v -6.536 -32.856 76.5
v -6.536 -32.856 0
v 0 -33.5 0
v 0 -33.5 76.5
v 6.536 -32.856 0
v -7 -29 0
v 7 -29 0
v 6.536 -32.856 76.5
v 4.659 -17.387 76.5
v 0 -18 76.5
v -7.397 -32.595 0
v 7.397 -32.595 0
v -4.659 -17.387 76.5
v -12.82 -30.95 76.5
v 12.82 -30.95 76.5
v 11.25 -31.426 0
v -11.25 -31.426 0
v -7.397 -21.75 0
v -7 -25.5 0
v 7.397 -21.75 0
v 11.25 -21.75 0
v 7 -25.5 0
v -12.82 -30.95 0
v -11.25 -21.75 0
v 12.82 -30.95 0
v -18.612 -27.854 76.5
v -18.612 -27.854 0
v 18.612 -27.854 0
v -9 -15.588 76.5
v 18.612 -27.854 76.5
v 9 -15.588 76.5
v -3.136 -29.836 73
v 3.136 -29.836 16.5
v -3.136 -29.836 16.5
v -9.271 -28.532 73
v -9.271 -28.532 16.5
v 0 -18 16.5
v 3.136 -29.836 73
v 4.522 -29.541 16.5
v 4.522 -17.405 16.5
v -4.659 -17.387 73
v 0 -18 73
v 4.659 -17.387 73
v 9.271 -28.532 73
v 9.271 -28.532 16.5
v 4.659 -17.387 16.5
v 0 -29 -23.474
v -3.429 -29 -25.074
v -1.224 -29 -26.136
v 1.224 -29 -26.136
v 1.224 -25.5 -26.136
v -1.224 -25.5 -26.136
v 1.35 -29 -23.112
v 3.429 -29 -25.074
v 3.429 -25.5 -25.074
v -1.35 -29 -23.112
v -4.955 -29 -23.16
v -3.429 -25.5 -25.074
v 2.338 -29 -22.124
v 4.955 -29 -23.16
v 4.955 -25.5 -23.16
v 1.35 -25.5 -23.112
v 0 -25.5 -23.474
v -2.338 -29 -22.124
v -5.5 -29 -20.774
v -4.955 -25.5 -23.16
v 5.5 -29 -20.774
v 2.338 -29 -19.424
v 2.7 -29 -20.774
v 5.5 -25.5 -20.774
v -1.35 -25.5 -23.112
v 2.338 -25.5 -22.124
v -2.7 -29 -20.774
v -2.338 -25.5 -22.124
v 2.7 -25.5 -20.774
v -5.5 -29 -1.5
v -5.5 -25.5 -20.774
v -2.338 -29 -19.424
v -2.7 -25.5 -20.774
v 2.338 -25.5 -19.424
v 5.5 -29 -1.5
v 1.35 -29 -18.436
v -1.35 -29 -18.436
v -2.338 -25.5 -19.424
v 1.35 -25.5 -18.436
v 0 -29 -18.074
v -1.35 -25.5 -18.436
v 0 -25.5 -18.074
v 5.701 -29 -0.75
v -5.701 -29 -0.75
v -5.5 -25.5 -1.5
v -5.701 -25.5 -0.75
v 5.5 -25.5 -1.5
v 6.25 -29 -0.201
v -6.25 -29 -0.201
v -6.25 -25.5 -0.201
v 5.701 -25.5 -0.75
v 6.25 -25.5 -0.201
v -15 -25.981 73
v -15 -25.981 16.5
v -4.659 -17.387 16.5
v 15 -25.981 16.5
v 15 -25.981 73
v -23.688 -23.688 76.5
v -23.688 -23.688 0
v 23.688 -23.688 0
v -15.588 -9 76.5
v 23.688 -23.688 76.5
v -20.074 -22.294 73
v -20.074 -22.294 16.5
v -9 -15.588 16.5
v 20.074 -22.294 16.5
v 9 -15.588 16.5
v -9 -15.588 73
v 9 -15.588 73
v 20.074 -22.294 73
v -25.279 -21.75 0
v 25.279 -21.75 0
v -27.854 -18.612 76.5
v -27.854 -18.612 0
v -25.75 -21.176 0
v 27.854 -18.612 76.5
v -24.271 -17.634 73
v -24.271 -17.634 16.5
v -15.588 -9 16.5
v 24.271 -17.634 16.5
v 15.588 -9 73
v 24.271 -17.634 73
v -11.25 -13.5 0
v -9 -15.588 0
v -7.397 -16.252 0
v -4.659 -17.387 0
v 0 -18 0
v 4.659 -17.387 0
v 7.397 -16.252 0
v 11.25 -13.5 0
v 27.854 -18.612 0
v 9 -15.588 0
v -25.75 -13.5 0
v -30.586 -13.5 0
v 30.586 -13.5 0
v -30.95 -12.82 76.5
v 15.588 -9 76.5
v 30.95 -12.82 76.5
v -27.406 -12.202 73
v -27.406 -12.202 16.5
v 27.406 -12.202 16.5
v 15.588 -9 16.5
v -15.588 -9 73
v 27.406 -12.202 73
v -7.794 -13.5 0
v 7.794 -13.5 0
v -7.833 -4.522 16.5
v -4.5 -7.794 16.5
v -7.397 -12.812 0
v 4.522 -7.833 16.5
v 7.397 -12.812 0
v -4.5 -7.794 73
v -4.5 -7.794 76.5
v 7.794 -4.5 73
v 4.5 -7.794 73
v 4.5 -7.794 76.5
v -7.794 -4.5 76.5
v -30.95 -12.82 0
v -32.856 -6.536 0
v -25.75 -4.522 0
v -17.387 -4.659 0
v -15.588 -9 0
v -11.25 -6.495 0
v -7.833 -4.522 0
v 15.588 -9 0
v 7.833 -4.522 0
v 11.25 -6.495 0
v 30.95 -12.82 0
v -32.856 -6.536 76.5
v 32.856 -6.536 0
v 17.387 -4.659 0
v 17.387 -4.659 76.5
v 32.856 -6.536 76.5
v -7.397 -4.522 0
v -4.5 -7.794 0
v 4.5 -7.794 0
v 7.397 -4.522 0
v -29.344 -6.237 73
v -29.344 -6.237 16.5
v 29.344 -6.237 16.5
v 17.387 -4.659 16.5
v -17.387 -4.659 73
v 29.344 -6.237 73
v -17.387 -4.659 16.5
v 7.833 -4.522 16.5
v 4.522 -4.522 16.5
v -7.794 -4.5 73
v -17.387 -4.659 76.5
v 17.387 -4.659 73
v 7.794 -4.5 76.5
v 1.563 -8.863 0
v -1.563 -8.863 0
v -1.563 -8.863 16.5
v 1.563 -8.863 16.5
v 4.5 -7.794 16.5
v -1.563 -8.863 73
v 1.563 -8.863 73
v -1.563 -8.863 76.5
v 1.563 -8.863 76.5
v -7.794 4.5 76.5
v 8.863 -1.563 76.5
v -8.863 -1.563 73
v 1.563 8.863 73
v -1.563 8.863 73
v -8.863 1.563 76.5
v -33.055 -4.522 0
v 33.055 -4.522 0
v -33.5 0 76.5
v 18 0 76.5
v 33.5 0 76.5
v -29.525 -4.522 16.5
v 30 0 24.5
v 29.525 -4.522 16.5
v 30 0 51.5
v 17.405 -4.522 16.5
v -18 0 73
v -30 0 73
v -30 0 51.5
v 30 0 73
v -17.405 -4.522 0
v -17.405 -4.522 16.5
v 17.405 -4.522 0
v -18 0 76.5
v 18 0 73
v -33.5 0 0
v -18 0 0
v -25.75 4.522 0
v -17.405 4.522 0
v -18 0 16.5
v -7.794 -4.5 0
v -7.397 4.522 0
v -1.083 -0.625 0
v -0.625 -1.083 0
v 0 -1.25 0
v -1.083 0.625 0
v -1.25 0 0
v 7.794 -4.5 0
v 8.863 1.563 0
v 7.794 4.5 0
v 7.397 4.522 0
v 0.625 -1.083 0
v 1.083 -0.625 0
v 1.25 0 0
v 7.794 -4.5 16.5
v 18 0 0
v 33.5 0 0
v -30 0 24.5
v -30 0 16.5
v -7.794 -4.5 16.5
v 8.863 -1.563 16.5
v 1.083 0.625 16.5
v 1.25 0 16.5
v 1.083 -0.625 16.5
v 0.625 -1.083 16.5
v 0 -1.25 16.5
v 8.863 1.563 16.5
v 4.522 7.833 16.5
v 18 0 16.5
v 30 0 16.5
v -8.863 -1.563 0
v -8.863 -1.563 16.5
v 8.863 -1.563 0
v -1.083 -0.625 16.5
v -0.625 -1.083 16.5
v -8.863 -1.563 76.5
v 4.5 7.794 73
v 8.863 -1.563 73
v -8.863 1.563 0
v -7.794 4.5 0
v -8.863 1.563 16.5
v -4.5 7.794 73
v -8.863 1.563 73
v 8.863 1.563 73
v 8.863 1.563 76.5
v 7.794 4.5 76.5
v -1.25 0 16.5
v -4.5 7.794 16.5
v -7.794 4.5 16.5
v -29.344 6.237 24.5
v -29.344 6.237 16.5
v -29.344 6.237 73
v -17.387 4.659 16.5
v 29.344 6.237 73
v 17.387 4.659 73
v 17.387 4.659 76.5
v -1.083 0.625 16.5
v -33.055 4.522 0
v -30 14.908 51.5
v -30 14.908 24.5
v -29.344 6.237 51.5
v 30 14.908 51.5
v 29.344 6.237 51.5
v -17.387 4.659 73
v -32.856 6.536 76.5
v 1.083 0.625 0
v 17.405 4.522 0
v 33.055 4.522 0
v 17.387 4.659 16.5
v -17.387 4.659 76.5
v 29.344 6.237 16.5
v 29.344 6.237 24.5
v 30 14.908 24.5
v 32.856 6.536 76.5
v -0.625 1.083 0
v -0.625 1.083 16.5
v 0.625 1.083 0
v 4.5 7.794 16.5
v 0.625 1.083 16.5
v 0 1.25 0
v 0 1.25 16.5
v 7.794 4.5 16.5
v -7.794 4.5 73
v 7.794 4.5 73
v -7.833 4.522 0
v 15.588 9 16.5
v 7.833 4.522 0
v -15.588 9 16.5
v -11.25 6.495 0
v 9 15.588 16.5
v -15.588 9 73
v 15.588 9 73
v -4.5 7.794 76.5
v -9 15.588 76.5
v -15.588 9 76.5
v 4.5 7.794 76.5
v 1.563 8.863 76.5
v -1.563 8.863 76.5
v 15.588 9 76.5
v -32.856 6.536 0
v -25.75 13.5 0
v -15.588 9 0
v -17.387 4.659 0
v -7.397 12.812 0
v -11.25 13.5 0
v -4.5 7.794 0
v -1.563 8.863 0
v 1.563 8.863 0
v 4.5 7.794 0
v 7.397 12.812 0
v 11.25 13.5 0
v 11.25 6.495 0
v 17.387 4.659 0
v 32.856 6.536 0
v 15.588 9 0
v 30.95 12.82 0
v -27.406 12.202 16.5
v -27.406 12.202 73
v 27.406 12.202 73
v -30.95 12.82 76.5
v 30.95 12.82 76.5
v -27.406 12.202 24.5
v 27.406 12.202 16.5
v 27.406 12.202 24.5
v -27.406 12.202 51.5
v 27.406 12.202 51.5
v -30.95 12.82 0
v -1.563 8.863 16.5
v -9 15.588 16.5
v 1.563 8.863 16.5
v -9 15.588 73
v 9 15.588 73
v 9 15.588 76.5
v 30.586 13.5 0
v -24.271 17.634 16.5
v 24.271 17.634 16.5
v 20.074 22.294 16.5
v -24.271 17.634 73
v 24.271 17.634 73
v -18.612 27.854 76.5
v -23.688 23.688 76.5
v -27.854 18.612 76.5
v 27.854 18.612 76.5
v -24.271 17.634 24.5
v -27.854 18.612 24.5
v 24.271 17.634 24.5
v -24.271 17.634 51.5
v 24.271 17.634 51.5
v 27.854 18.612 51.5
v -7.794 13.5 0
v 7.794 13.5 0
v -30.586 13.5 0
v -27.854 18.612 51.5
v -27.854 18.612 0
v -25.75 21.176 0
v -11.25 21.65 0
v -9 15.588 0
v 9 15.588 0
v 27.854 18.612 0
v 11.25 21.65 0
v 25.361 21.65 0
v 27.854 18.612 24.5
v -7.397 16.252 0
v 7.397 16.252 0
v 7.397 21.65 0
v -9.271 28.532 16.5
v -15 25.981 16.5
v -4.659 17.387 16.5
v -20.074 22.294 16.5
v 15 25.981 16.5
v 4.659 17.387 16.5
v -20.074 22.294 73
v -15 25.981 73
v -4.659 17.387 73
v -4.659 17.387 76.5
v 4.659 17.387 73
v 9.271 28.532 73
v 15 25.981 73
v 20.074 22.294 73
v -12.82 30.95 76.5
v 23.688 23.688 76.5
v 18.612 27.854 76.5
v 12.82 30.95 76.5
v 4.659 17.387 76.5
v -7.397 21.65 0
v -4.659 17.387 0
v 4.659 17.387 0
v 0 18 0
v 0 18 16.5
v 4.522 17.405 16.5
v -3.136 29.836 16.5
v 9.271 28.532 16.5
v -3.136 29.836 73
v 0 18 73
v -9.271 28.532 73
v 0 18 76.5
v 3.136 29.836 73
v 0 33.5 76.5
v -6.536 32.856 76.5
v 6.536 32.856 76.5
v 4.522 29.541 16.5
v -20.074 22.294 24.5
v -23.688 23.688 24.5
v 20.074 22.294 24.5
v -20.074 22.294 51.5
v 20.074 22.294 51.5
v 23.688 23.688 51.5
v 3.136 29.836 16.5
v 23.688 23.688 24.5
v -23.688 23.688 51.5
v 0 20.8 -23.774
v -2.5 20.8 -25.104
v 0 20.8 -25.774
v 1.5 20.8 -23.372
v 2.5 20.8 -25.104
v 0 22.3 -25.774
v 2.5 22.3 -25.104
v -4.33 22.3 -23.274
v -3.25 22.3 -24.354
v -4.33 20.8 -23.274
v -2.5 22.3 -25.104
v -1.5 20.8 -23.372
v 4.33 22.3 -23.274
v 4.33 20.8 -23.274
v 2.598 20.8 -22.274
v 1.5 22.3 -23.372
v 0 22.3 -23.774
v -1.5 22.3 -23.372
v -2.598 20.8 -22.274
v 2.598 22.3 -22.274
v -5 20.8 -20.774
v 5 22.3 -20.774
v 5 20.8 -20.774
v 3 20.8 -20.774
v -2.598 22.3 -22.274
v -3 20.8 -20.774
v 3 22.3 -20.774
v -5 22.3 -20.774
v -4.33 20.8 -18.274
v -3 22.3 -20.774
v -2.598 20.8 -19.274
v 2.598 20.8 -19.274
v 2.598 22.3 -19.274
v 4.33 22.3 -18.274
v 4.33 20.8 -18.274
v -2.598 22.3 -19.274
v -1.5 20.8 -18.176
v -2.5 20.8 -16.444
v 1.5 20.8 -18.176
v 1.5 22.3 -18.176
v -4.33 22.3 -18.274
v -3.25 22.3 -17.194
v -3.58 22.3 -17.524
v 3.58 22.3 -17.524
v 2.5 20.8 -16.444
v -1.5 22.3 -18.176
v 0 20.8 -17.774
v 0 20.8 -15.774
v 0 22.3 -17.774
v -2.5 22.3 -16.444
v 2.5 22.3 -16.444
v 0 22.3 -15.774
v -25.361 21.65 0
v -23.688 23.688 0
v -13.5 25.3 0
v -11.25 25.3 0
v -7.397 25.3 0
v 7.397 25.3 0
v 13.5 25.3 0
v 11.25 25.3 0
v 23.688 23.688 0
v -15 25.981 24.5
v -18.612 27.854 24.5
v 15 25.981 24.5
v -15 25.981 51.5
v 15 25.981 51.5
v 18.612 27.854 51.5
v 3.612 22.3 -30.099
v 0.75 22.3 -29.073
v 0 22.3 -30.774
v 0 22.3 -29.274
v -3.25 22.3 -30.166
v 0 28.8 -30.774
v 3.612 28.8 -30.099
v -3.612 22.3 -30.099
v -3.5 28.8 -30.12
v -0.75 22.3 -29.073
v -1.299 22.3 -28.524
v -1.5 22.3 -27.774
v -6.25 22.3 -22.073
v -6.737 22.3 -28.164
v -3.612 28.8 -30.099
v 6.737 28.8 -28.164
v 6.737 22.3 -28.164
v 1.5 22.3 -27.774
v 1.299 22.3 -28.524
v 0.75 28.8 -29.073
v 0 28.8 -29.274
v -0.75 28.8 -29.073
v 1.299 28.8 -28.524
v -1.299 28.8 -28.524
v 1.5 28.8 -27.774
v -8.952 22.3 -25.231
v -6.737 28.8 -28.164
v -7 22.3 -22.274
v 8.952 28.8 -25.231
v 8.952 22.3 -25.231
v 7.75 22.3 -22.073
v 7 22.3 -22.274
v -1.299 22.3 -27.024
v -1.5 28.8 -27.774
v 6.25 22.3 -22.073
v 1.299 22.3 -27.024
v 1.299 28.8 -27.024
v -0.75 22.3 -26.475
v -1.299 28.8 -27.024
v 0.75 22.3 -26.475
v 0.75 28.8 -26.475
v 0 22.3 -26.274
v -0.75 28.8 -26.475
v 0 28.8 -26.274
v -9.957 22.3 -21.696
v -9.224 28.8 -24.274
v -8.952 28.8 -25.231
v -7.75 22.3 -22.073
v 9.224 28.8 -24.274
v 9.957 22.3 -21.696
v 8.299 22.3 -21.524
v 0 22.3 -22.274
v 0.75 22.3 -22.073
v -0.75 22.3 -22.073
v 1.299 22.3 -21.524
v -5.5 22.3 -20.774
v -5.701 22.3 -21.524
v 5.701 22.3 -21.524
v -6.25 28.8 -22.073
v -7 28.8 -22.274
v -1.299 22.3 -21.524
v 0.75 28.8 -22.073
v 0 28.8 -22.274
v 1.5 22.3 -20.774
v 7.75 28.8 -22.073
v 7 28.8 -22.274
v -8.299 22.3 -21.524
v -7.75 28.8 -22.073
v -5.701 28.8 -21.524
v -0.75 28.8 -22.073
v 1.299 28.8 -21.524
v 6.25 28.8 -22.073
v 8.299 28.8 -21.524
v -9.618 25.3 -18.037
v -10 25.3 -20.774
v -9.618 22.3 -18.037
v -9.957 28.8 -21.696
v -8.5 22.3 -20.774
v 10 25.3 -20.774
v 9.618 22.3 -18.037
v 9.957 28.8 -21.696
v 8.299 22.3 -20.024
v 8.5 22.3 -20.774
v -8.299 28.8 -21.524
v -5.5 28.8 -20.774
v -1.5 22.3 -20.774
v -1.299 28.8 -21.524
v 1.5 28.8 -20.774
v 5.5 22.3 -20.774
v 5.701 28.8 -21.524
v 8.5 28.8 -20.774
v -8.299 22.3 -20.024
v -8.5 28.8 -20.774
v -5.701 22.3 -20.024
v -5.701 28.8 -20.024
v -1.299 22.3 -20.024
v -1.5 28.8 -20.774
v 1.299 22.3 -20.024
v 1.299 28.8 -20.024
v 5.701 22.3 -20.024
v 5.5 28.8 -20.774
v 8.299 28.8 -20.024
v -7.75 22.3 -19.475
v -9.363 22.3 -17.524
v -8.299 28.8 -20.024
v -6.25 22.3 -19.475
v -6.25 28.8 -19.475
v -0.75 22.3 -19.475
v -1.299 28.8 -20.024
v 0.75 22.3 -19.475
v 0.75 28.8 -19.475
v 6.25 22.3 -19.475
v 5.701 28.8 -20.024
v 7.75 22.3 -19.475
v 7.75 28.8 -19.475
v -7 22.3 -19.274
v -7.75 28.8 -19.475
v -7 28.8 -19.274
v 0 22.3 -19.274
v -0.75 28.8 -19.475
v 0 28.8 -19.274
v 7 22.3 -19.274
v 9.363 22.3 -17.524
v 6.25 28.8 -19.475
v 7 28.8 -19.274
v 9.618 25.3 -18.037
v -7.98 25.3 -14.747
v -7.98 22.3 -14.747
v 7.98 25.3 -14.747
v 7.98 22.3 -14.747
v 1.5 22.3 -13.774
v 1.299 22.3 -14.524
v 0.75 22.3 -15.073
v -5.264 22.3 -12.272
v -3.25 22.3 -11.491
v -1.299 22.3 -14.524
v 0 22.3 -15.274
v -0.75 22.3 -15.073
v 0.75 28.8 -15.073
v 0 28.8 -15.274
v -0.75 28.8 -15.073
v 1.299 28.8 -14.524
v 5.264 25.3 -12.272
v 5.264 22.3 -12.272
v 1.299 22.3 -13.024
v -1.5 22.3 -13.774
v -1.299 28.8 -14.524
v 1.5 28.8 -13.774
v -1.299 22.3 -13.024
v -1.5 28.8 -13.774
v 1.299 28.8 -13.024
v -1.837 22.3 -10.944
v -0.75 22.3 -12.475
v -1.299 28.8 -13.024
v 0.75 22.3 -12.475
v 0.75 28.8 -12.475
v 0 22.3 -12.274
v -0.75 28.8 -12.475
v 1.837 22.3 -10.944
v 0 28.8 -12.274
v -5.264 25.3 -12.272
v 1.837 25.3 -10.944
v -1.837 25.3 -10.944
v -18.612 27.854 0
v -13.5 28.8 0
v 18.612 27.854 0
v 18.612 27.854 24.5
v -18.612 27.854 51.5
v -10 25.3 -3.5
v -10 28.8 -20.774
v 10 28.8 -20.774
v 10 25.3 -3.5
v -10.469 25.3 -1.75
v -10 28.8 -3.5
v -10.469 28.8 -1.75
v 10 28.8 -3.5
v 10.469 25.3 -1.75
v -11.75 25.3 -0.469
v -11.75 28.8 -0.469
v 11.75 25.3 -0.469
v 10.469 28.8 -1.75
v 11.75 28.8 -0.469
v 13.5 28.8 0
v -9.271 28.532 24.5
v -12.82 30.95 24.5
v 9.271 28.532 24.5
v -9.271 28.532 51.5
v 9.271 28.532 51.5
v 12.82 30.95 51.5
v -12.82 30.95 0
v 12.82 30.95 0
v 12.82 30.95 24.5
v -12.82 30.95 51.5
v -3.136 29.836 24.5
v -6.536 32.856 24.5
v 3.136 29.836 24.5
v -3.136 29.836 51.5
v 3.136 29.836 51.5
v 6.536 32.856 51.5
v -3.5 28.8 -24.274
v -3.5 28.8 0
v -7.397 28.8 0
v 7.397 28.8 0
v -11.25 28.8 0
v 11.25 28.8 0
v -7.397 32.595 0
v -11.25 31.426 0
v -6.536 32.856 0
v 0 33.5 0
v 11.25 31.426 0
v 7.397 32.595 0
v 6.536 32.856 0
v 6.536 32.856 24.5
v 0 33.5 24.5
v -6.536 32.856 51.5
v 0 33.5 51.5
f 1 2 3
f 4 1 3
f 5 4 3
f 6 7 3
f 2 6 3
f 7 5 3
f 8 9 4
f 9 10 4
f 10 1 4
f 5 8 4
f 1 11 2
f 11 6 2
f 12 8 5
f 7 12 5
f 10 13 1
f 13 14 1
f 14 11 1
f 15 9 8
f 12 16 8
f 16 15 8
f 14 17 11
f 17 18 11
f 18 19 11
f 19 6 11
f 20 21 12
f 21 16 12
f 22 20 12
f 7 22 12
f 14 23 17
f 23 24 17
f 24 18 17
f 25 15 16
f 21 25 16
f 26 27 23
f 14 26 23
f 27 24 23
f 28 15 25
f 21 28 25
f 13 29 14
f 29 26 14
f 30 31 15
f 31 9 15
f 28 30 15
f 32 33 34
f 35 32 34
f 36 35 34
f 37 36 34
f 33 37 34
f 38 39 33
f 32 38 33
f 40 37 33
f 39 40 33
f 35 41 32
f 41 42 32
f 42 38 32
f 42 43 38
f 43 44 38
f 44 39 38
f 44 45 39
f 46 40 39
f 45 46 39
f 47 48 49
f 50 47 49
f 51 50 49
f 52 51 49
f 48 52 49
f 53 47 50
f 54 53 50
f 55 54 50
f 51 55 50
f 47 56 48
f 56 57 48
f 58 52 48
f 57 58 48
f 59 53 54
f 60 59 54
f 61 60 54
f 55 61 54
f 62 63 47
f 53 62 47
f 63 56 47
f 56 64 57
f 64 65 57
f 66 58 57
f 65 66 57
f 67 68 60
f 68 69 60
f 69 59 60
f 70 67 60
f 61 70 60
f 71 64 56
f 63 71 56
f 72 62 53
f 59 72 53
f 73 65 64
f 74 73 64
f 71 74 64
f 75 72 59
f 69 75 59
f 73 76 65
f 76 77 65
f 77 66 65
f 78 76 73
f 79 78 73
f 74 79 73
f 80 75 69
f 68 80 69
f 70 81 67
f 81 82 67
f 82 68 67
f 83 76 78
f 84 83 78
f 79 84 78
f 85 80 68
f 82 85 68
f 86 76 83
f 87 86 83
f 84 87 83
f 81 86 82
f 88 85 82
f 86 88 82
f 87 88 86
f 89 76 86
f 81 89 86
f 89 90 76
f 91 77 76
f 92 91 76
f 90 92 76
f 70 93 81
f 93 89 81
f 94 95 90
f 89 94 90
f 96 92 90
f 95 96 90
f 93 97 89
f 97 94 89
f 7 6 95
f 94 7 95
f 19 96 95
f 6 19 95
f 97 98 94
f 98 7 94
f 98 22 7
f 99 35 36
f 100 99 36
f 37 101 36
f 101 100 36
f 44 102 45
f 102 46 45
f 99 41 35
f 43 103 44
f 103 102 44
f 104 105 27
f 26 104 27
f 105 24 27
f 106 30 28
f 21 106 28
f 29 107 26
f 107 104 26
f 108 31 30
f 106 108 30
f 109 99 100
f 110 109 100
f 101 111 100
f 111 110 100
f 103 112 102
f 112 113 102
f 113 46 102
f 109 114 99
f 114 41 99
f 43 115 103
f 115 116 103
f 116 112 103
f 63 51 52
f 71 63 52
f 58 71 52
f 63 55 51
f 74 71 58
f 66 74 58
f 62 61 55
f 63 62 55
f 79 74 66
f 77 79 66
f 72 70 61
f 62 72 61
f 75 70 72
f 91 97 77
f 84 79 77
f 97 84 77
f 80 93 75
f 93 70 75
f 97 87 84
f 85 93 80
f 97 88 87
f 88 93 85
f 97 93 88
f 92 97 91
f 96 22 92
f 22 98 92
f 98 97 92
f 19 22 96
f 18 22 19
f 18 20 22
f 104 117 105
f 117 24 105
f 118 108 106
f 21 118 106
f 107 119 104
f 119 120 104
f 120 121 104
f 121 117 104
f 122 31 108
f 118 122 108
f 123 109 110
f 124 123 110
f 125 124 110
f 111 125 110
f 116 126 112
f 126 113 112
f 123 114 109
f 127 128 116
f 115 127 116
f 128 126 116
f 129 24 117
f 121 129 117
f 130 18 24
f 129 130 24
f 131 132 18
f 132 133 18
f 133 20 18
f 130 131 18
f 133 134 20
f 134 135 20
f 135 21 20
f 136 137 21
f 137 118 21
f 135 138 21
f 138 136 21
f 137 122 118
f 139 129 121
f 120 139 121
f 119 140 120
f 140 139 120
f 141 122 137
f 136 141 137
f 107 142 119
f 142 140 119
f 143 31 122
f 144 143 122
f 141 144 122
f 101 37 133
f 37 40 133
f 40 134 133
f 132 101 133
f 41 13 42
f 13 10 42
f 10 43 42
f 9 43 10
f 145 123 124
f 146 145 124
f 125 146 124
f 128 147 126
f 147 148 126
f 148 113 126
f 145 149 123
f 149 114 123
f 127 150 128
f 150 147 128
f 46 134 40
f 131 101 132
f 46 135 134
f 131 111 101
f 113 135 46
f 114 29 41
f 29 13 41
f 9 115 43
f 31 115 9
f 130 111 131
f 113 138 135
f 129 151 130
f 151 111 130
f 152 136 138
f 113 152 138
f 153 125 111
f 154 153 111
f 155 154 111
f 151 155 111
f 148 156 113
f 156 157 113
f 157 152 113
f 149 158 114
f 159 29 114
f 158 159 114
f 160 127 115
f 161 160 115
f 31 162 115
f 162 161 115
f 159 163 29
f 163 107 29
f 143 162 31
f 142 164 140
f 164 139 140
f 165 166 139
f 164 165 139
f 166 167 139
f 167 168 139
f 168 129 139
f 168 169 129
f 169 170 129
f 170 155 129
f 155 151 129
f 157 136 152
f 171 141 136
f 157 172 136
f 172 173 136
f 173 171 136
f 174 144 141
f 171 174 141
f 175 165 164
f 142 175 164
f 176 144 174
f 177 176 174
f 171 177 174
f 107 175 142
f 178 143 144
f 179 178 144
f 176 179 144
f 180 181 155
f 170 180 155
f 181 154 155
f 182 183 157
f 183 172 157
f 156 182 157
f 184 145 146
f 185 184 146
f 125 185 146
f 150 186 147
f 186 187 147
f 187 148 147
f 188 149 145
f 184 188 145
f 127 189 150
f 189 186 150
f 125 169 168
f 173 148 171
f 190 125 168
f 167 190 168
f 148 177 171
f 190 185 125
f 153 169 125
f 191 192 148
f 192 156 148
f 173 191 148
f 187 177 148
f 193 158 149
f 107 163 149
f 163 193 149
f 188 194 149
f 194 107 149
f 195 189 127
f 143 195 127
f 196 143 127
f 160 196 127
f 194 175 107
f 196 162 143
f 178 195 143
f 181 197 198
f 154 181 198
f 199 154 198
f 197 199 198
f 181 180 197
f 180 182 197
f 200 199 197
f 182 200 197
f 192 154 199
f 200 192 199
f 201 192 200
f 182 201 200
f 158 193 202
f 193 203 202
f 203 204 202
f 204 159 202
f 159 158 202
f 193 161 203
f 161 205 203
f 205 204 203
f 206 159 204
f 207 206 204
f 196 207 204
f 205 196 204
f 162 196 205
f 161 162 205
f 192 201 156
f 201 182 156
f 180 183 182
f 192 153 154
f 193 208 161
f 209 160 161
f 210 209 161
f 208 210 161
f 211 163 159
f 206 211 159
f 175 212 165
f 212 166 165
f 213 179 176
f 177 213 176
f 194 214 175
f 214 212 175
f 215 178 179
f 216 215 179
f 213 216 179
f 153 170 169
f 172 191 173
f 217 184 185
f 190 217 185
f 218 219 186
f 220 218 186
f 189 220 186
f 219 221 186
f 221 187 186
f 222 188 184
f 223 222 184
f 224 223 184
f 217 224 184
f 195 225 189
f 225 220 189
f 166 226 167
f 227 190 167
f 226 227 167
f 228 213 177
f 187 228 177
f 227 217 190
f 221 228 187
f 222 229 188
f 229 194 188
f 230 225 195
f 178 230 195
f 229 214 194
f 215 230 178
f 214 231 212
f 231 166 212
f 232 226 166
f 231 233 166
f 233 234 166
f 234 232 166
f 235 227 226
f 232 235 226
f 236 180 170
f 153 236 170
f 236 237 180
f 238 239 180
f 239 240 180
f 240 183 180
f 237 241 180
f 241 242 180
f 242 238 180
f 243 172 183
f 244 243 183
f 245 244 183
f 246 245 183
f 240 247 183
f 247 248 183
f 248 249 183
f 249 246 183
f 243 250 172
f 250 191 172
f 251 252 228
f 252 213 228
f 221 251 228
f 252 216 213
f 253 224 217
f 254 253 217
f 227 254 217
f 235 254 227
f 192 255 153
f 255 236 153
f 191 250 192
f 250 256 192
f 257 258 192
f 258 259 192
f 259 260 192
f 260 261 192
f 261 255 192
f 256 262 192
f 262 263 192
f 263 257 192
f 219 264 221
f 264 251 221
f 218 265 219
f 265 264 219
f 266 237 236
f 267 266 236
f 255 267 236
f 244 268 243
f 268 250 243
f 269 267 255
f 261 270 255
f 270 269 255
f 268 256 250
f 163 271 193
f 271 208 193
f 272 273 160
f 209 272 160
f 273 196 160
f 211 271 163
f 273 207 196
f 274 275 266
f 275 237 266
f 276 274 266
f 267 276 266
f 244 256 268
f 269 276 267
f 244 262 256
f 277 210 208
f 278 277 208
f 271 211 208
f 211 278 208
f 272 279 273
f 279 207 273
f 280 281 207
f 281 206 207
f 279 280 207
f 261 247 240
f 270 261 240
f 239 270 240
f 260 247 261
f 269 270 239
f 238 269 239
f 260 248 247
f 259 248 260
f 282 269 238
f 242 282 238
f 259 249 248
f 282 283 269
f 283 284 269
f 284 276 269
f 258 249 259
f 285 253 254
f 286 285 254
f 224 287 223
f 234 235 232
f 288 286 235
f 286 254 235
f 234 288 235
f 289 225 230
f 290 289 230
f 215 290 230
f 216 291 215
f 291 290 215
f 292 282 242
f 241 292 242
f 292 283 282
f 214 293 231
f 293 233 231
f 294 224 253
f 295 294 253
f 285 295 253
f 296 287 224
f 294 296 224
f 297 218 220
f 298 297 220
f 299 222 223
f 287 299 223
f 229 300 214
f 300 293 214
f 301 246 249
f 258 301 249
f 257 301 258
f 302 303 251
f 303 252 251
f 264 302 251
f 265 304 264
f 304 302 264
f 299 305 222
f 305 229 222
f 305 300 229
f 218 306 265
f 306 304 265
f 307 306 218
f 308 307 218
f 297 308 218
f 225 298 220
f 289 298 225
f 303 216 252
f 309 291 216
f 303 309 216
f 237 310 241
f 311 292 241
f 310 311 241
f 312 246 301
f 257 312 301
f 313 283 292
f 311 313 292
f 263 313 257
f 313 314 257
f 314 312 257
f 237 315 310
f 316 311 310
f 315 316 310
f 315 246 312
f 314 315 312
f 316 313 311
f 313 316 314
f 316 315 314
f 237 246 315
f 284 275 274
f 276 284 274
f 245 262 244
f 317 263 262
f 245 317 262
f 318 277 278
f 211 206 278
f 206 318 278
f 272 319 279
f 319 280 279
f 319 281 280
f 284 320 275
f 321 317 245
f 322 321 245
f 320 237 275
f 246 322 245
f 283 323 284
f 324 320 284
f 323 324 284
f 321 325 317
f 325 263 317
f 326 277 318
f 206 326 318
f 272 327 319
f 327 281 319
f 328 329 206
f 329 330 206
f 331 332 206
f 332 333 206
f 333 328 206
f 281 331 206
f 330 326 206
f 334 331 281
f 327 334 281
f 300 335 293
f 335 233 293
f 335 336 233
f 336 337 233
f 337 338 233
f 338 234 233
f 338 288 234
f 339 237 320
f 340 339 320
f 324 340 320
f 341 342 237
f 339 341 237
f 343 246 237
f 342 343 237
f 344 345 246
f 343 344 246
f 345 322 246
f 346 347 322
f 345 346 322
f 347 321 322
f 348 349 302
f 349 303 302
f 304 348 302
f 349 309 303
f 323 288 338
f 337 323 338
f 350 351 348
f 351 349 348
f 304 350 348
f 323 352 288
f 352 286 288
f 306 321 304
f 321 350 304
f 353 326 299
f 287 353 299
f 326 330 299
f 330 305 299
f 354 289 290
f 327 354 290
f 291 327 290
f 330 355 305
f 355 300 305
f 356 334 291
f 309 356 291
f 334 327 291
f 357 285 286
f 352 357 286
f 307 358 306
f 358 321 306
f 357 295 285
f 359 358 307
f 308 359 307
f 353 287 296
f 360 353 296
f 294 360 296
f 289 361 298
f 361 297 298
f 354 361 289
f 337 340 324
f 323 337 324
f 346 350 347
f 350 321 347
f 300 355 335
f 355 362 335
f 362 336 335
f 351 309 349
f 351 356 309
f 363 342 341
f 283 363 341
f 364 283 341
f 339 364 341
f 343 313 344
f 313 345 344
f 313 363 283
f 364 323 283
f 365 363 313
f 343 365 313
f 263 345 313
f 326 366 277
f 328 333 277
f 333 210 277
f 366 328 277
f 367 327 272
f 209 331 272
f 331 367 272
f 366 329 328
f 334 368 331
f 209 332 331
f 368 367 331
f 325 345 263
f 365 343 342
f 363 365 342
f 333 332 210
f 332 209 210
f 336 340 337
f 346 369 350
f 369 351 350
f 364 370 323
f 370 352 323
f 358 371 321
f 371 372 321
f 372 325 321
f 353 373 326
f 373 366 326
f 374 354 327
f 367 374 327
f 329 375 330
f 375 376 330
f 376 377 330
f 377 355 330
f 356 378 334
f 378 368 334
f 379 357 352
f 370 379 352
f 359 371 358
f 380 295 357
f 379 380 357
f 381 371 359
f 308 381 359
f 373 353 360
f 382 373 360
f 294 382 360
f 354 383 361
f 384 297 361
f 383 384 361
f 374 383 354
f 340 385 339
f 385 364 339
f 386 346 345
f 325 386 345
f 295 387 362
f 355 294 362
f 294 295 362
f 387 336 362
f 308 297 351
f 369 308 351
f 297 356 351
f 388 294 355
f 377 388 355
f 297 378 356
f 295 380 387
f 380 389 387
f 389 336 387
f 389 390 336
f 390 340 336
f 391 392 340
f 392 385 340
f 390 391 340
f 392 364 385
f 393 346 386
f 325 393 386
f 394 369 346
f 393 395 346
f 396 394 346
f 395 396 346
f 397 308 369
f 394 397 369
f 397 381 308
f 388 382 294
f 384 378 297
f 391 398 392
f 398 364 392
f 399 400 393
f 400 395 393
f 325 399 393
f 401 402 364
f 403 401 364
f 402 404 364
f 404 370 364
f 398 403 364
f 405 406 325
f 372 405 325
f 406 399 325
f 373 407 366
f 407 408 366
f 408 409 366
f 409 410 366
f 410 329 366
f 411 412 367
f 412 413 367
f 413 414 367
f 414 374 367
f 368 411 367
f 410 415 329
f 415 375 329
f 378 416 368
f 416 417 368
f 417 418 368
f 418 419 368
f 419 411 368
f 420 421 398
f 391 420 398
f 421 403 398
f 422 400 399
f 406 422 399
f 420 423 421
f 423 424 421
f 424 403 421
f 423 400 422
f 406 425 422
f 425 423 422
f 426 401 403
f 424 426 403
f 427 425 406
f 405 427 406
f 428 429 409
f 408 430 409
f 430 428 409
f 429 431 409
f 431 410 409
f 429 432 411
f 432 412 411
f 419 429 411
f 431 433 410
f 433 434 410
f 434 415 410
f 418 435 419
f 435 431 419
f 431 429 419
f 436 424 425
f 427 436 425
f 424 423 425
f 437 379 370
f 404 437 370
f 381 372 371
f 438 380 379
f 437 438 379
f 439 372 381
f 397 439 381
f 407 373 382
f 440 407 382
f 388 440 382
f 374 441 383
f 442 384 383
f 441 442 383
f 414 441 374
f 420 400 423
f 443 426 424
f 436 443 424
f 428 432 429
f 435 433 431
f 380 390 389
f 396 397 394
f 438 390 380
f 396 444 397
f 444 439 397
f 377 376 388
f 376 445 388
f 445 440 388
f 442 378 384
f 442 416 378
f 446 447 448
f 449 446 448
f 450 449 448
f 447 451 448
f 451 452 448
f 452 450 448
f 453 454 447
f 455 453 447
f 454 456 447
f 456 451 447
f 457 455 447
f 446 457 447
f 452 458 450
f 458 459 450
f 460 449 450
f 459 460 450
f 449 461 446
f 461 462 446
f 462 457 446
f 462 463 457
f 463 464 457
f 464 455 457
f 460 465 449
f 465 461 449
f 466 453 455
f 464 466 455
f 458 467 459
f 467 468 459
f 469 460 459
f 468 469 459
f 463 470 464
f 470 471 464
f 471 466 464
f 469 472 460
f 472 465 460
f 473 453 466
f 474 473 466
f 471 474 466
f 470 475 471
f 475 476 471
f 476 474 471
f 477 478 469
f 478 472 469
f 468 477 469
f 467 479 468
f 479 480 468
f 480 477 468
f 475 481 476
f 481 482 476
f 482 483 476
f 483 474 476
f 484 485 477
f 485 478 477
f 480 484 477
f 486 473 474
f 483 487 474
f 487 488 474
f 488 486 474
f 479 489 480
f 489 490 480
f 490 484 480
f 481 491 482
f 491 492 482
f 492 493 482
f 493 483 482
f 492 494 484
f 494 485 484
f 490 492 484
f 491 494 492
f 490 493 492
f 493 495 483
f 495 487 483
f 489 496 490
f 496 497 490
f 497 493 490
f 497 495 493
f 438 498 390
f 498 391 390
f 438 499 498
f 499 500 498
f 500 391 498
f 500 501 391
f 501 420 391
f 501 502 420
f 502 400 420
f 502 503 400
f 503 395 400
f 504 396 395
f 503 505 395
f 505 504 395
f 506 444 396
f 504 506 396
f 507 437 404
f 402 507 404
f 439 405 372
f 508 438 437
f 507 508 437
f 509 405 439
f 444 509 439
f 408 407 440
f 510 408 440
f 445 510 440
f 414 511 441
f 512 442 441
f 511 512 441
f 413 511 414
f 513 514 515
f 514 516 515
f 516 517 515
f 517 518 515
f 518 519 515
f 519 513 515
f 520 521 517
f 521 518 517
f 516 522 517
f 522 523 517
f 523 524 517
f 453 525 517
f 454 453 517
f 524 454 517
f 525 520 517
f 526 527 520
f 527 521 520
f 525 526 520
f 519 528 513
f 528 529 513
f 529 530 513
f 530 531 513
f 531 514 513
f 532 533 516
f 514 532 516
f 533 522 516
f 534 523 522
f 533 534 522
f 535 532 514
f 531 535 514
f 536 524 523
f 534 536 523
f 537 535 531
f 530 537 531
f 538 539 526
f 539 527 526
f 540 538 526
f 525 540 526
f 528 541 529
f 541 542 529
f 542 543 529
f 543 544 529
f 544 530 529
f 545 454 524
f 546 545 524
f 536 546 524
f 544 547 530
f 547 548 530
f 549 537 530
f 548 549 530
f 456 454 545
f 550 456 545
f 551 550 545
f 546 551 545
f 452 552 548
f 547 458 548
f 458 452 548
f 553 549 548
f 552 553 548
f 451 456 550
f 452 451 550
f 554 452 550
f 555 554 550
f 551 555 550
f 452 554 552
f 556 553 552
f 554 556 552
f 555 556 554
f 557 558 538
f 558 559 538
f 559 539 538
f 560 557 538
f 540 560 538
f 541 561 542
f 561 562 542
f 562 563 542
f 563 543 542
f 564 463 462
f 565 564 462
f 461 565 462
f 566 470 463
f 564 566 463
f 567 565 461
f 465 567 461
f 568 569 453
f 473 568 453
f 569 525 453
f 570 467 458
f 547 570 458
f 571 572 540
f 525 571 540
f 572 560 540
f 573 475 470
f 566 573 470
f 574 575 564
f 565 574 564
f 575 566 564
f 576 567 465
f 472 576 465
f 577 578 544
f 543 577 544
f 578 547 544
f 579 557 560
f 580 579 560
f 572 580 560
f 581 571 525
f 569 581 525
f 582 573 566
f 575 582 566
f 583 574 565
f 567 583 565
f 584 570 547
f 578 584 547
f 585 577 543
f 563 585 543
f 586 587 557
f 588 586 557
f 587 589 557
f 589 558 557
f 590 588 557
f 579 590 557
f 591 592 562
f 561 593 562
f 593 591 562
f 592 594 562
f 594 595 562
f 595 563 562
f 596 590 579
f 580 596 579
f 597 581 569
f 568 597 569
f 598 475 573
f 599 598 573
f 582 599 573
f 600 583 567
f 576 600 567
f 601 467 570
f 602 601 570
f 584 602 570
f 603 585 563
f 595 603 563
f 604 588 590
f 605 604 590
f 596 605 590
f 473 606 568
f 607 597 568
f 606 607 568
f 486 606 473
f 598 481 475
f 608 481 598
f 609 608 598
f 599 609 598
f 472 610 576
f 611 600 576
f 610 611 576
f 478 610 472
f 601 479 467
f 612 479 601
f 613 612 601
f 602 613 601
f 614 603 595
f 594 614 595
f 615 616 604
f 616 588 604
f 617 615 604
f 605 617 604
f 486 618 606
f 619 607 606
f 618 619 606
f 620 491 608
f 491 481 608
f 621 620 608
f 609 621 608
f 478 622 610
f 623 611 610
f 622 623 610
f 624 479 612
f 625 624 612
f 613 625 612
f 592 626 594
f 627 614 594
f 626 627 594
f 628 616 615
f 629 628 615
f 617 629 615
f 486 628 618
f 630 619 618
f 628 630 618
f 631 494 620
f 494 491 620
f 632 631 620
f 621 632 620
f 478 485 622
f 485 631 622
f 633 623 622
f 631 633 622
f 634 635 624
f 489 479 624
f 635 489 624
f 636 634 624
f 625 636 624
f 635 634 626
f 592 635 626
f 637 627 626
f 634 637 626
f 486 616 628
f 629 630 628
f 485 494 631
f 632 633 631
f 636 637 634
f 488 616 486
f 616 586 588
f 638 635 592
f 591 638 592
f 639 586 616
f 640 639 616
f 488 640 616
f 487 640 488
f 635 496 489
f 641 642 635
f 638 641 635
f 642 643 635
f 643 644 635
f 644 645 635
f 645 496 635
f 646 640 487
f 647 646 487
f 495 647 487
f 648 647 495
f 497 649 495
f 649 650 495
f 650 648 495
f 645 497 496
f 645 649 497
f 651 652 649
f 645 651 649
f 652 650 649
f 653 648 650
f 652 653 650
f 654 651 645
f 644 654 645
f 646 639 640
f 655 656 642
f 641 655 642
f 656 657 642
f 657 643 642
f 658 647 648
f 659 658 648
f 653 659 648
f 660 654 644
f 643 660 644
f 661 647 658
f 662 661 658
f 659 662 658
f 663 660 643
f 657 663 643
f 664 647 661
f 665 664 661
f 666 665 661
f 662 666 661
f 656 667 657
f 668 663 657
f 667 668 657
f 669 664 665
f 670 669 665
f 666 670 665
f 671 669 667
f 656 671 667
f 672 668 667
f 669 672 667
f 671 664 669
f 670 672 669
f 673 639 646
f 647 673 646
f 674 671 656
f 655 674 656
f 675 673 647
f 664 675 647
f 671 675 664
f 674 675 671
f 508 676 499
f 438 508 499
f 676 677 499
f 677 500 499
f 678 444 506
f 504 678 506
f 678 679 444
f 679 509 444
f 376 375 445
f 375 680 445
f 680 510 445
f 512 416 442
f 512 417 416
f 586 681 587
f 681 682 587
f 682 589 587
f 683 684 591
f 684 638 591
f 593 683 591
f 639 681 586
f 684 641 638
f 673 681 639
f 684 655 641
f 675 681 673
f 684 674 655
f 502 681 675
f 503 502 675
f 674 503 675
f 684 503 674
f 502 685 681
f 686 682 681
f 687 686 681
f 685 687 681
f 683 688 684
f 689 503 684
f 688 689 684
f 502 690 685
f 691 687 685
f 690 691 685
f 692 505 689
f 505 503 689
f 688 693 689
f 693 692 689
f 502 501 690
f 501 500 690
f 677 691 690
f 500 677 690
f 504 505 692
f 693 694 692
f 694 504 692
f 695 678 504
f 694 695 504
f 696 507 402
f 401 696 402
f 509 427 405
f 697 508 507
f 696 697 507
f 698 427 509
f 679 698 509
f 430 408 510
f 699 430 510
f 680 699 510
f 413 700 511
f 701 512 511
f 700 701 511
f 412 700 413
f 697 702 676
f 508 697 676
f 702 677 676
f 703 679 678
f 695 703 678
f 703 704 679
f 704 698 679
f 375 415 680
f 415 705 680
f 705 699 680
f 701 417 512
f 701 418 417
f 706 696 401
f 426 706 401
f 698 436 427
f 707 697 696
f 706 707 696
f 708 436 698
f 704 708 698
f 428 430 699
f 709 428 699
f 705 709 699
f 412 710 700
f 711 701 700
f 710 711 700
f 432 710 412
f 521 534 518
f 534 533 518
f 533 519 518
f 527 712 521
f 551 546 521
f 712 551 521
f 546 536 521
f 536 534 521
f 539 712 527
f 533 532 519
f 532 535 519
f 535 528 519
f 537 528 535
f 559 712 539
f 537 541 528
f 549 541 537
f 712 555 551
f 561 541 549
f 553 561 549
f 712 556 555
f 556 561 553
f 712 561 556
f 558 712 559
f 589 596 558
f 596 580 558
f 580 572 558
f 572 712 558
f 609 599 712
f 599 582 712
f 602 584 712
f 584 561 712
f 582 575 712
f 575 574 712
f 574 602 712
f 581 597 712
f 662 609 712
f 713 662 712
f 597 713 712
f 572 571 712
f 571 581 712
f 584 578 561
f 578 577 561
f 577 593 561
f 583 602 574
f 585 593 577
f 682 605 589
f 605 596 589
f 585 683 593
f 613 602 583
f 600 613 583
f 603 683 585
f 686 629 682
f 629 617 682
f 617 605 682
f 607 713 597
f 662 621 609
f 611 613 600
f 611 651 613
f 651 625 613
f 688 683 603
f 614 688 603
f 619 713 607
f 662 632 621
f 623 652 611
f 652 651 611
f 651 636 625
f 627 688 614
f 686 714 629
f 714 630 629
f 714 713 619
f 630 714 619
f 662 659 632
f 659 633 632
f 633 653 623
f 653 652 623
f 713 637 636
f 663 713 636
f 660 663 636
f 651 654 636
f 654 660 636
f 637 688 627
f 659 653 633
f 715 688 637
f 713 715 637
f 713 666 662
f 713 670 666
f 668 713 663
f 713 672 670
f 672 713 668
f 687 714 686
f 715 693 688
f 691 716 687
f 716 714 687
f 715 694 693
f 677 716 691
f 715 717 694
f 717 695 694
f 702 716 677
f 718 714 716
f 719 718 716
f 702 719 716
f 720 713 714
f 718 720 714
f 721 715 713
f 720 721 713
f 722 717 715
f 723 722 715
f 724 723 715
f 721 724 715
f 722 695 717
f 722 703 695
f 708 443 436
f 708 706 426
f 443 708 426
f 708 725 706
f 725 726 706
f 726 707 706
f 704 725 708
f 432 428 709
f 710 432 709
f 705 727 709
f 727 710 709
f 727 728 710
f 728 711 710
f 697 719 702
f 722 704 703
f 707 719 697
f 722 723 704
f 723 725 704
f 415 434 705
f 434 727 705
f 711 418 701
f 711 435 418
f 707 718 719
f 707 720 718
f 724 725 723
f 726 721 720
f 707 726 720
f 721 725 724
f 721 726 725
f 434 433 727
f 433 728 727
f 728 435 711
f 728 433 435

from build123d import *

# Parameters (mm, degrees)
SKETCH1_R           = 33.5
SKETCH1_R_2         = 30
BOSS_EXTRUDE1_DEPTH = 76.5
SKETCH3_R           = 33.5
BOSS_EXTRUDE2_DEPTH = 16.5
SKETCH4_W           = 20
SKETCH4_H           = 3.5
BOSS_EXTRUDE4_DEPTH = 30.867
SKETCH4_5_W         = 11
SKETCH4_5_H         = 3.5
BOSS_EXTRUDE5_DEPTH = 27
SKETCH4_7_R         = 1.25
CUT_EXTRUDE1_DEPTH  = 90.981942633
FILLET1_R           = 3.5
FILLET2_R           = 1.5
CUT_EXTRUDE4_DEPTH  = 103.136868955
BOSS_EXTRUDE7_START = 3
SKETCH6_10_R        = 10
BOSS_EXTRUDE7_DEPTH = 3
SKETCH12_R          = 5
SKETCH12_R_2        = 3
BOSS_EXTRUDE8_DEPTH = 1.5
SKETCH12_3_R        = 1.5
CUT_EXTRUDE7_DEPTH  = 101.439733174
CIRPATTERN1_COUNT   = 4
SKETCH12_4_R        = 1.5
CUT_EXTRUDE8_DEPTH  = 101.439733174
CUT_EXTRUDE9_DEPTH  = 90.981942633
CIRPATTERN2_COUNT   = 4
SKETCH13_W          = 60
SKETCH13_H          = 27
CUT_EXTRUDE11_DEPTH = 33.5
BOSS_EXTRUDE9_START = -3.5
SKETCH14_R          = 33.5
BOSS_EXTRUDE9_DEPTH = 3.5
CUT_EXTRUDE12_START = -4
CUT_EXTRUDE12_DEPTH = 4
CIRPATTERN3_COUNT   = 4
SKETCH16_R          = 2.7
CUT_EXTRUDE13_DEPTH = 10


with BuildPart() as part:
    # Sketch1 → Boss-Extrude1 (new body)
    with BuildSketch(Plane.XY):
        Circle(SKETCH1_R)
        Circle(SKETCH1_R_2, mode=Mode.SUBTRACT)
    extrude(amount=BOSS_EXTRUDE1_DEPTH)

    # Sketch3 → Boss-Extrude2 (add)
    with BuildSketch(Plane(origin=(0, 0, 0), x_dir=(-1, 0, 0), z_dir=(0, 0, -1))):
        Circle(SKETCH3_R)
    extrude(amount=-BOSS_EXTRUDE2_DEPTH)

    # Sketch4 → Boss-Extrude4 (add)
    with BuildSketch(Plane(origin=(0, 0, 0), x_dir=(-1, 0, 0), z_dir=(0, 0, -1))):
        with Locations((0, 27.05)):
            Rectangle(SKETCH4_W, SKETCH4_H)
    extrude(amount=BOSS_EXTRUDE4_DEPTH)

    # Sketch4<5> → Boss-Extrude5 (add)
    with BuildSketch(Plane(origin=(0, 0, 0), x_dir=(-1, 0, 0), z_dir=(0, 0, -1))):
        with Locations((0, -27.25)):
            Rectangle(SKETCH4_5_W, SKETCH4_5_H)
    extrude(amount=BOSS_EXTRUDE5_DEPTH)

    # Sketch4<7> → Cut-Extrude1 (cut, through all)
    with BuildSketch(Plane(origin=(0, 0, 0), x_dir=(-1, 0, 0), z_dir=(0, 0, -1))):
        Circle(SKETCH4_7_R)
    extrude(amount=-CUT_EXTRUDE1_DEPTH, mode=Mode.SUBTRACT)

    # Fillet1
    fillet1_edges = [part.edges().sort_by_distance(p)[0] for p in [
        (10, 27.05, 0),
        (-10, 27.05, 0),
    ]]
    fillet(fillet1_edges, radius=FILLET1_R)

    # Fillet2
    fillet2_edges = [part.edges().sort_by_distance(p)[0] for p in [
        (5.5, -27.25, 0),
        (-5.5, -27.25, 0),
    ]]
    fillet(fillet2_edges, radius=FILLET2_R)

    # Sketch6 → Cut-Extrude4 (cut, through all)
    with BuildSketch(Plane.XZ.offset(-25.3)):
        with BuildLine():
            Line((10, -30.867), (10, -20.77379065))
            ThreePointArc((10, -20.77379065), (0, -30.77379065), (-10, -20.77379065))
            Line((-10, -20.77379065), (-10, -30.867))
            Line((-10, -30.867), (10, -30.867))
        make_face()
    extrude(amount=-CUT_EXTRUDE4_DEPTH, mode=Mode.SUBTRACT)

    # Sketch6<10> → Boss-Extrude7 (add)
    with BuildSketch(Plane.XZ.offset(-25.3).offset(BOSS_EXTRUDE7_START)):
        with Locations((0, -20.77379065)):
            Circle(SKETCH6_10_R)
    extrude(amount=-BOSS_EXTRUDE7_DEPTH)

    # Sketch12 → Boss-Extrude8 (add)
    with BuildSketch(Plane.XZ.offset(-22.3)):
        with Locations((0, -20.77379065)):
            Circle(SKETCH12_R)
        with Locations((0, -20.77379065)):
            Circle(SKETCH12_R_2, mode=Mode.SUBTRACT)
    extrude(amount=BOSS_EXTRUDE8_DEPTH)

    # Sketch12<3> → Cut-Extrude7 (cut, through all)
    with BuildSketch(Plane.XZ.offset(-22.3)):
        with Locations((-7, -20.77379065)):
            Circle(SKETCH12_3_R)
    cut_extrude7 = extrude(amount=-CUT_EXTRUDE7_DEPTH, mode=Mode.SUBTRACT)

    # CirPattern1: Cut-Extrude7 ×4 about axis
    cirpattern1_axis = Axis((0, 20.8, -20.77379065), (0, -1, 0))
    for i in range(1, CIRPATTERN1_COUNT):
        add(cut_extrude7.rotate(cirpattern1_axis, i * 360 / CIRPATTERN1_COUNT), mode=Mode.SUBTRACT)

    # Sketch12<4> → Cut-Extrude8 (cut, through all)
    with BuildSketch(Plane.XZ.offset(-22.3)):
        with Locations((0, -20.77379065)):
            Circle(SKETCH12_4_R)
    extrude(amount=-CUT_EXTRUDE8_DEPTH, mode=Mode.SUBTRACT)

    # Sketch4<8> → Cut-Extrude9 (cut, through all)
    with BuildSketch(Plane(origin=(0, 0, 0), x_dir=(-1, 0, 0), z_dir=(0, 0, -1))):
        with BuildLine():
            Line((15.588457268, 9), (7.794228634, 4.5))
            ThreePointArc((7.794228634, 4.5), (9, 0), (7.794228634, -4.5))
            Line((7.794228634, -4.5), (15.588457268, -9))
            ThreePointArc((15.588457268, -9), (18, 0), (15.588457268, 9))
        make_face()
    cut_extrude9 = extrude(amount=-CUT_EXTRUDE9_DEPTH, mode=Mode.SUBTRACT)

    # CirPattern2: Cut-Extrude9 ×4 about axis
    cirpattern2_axis = Axis((0, 0, 0), (0, 0, -1))
    for i in range(1, CIRPATTERN2_COUNT):
        add(cut_extrude9.rotate(cirpattern2_axis, i * 360 / CIRPATTERN2_COUNT), mode=Mode.SUBTRACT)

    # Sketch13 → Cut-Extrude11 (cut)
    with BuildSketch(Plane(origin=(0, 33.5, 0), x_dir=(1, 0, 0), z_dir=(0, 1, 0))):
        with Locations((0, -38)):
            Rectangle(SKETCH13_W, SKETCH13_H)
    extrude(amount=-CUT_EXTRUDE11_DEPTH, mode=Mode.SUBTRACT)

    # Sketch14 → Boss-Extrude9 (add)
    with BuildSketch(Plane.XY.offset(76.5).offset(BOSS_EXTRUDE9_START)):
        Circle(SKETCH14_R)
    extrude(amount=BOSS_EXTRUDE9_DEPTH)

    # Sketch14<3> → Cut-Extrude12 (cut)
    with BuildSketch(Plane.XY.offset(76.5).offset(CUT_EXTRUDE12_START)):
        with BuildLine():
            Line((15.588457268, 9), (7.794228634, 4.5))
            ThreePointArc((7.794228634, 4.5), (9, 0), (7.794228634, -4.5))
            Line((7.794228634, -4.5), (15.588457268, -9))
            ThreePointArc((15.588457268, -9), (18, 0), (15.588457268, 9))
        make_face()
    cut_extrude12 = extrude(amount=CUT_EXTRUDE12_DEPTH, mode=Mode.SUBTRACT)

    # CirPattern3: Cut-Extrude12 ×4 about axis
    cirpattern3_axis = Axis((0, 0, 16.5), (0, 0, -1))
    for i in range(1, CIRPATTERN3_COUNT):
        add(cut_extrude12.rotate(cirpattern3_axis, i * 360 / CIRPATTERN3_COUNT), mode=Mode.SUBTRACT)

    # Sketch16 → Cut-Extrude13 (cut)
    with BuildSketch(Plane.XZ.offset(29)):
        with Locations((0, -20.77379065)):
            Circle(SKETCH16_R)
        with BuildLine():
            Line((5.5, -27), (5.5, -20.77379065))
            ThreePointArc((5.5, -20.77379065), (0, -26.27379065), (-5.5, -20.77379065))
            Line((-5.5, -20.77379065), (-5.5, -27))
            Line((-5.5, -27), (5.5, -27))
        make_face()
    extrude(amount=-CUT_EXTRUDE13_DEPTH, mode=Mode.SUBTRACT)


solid = part.part
